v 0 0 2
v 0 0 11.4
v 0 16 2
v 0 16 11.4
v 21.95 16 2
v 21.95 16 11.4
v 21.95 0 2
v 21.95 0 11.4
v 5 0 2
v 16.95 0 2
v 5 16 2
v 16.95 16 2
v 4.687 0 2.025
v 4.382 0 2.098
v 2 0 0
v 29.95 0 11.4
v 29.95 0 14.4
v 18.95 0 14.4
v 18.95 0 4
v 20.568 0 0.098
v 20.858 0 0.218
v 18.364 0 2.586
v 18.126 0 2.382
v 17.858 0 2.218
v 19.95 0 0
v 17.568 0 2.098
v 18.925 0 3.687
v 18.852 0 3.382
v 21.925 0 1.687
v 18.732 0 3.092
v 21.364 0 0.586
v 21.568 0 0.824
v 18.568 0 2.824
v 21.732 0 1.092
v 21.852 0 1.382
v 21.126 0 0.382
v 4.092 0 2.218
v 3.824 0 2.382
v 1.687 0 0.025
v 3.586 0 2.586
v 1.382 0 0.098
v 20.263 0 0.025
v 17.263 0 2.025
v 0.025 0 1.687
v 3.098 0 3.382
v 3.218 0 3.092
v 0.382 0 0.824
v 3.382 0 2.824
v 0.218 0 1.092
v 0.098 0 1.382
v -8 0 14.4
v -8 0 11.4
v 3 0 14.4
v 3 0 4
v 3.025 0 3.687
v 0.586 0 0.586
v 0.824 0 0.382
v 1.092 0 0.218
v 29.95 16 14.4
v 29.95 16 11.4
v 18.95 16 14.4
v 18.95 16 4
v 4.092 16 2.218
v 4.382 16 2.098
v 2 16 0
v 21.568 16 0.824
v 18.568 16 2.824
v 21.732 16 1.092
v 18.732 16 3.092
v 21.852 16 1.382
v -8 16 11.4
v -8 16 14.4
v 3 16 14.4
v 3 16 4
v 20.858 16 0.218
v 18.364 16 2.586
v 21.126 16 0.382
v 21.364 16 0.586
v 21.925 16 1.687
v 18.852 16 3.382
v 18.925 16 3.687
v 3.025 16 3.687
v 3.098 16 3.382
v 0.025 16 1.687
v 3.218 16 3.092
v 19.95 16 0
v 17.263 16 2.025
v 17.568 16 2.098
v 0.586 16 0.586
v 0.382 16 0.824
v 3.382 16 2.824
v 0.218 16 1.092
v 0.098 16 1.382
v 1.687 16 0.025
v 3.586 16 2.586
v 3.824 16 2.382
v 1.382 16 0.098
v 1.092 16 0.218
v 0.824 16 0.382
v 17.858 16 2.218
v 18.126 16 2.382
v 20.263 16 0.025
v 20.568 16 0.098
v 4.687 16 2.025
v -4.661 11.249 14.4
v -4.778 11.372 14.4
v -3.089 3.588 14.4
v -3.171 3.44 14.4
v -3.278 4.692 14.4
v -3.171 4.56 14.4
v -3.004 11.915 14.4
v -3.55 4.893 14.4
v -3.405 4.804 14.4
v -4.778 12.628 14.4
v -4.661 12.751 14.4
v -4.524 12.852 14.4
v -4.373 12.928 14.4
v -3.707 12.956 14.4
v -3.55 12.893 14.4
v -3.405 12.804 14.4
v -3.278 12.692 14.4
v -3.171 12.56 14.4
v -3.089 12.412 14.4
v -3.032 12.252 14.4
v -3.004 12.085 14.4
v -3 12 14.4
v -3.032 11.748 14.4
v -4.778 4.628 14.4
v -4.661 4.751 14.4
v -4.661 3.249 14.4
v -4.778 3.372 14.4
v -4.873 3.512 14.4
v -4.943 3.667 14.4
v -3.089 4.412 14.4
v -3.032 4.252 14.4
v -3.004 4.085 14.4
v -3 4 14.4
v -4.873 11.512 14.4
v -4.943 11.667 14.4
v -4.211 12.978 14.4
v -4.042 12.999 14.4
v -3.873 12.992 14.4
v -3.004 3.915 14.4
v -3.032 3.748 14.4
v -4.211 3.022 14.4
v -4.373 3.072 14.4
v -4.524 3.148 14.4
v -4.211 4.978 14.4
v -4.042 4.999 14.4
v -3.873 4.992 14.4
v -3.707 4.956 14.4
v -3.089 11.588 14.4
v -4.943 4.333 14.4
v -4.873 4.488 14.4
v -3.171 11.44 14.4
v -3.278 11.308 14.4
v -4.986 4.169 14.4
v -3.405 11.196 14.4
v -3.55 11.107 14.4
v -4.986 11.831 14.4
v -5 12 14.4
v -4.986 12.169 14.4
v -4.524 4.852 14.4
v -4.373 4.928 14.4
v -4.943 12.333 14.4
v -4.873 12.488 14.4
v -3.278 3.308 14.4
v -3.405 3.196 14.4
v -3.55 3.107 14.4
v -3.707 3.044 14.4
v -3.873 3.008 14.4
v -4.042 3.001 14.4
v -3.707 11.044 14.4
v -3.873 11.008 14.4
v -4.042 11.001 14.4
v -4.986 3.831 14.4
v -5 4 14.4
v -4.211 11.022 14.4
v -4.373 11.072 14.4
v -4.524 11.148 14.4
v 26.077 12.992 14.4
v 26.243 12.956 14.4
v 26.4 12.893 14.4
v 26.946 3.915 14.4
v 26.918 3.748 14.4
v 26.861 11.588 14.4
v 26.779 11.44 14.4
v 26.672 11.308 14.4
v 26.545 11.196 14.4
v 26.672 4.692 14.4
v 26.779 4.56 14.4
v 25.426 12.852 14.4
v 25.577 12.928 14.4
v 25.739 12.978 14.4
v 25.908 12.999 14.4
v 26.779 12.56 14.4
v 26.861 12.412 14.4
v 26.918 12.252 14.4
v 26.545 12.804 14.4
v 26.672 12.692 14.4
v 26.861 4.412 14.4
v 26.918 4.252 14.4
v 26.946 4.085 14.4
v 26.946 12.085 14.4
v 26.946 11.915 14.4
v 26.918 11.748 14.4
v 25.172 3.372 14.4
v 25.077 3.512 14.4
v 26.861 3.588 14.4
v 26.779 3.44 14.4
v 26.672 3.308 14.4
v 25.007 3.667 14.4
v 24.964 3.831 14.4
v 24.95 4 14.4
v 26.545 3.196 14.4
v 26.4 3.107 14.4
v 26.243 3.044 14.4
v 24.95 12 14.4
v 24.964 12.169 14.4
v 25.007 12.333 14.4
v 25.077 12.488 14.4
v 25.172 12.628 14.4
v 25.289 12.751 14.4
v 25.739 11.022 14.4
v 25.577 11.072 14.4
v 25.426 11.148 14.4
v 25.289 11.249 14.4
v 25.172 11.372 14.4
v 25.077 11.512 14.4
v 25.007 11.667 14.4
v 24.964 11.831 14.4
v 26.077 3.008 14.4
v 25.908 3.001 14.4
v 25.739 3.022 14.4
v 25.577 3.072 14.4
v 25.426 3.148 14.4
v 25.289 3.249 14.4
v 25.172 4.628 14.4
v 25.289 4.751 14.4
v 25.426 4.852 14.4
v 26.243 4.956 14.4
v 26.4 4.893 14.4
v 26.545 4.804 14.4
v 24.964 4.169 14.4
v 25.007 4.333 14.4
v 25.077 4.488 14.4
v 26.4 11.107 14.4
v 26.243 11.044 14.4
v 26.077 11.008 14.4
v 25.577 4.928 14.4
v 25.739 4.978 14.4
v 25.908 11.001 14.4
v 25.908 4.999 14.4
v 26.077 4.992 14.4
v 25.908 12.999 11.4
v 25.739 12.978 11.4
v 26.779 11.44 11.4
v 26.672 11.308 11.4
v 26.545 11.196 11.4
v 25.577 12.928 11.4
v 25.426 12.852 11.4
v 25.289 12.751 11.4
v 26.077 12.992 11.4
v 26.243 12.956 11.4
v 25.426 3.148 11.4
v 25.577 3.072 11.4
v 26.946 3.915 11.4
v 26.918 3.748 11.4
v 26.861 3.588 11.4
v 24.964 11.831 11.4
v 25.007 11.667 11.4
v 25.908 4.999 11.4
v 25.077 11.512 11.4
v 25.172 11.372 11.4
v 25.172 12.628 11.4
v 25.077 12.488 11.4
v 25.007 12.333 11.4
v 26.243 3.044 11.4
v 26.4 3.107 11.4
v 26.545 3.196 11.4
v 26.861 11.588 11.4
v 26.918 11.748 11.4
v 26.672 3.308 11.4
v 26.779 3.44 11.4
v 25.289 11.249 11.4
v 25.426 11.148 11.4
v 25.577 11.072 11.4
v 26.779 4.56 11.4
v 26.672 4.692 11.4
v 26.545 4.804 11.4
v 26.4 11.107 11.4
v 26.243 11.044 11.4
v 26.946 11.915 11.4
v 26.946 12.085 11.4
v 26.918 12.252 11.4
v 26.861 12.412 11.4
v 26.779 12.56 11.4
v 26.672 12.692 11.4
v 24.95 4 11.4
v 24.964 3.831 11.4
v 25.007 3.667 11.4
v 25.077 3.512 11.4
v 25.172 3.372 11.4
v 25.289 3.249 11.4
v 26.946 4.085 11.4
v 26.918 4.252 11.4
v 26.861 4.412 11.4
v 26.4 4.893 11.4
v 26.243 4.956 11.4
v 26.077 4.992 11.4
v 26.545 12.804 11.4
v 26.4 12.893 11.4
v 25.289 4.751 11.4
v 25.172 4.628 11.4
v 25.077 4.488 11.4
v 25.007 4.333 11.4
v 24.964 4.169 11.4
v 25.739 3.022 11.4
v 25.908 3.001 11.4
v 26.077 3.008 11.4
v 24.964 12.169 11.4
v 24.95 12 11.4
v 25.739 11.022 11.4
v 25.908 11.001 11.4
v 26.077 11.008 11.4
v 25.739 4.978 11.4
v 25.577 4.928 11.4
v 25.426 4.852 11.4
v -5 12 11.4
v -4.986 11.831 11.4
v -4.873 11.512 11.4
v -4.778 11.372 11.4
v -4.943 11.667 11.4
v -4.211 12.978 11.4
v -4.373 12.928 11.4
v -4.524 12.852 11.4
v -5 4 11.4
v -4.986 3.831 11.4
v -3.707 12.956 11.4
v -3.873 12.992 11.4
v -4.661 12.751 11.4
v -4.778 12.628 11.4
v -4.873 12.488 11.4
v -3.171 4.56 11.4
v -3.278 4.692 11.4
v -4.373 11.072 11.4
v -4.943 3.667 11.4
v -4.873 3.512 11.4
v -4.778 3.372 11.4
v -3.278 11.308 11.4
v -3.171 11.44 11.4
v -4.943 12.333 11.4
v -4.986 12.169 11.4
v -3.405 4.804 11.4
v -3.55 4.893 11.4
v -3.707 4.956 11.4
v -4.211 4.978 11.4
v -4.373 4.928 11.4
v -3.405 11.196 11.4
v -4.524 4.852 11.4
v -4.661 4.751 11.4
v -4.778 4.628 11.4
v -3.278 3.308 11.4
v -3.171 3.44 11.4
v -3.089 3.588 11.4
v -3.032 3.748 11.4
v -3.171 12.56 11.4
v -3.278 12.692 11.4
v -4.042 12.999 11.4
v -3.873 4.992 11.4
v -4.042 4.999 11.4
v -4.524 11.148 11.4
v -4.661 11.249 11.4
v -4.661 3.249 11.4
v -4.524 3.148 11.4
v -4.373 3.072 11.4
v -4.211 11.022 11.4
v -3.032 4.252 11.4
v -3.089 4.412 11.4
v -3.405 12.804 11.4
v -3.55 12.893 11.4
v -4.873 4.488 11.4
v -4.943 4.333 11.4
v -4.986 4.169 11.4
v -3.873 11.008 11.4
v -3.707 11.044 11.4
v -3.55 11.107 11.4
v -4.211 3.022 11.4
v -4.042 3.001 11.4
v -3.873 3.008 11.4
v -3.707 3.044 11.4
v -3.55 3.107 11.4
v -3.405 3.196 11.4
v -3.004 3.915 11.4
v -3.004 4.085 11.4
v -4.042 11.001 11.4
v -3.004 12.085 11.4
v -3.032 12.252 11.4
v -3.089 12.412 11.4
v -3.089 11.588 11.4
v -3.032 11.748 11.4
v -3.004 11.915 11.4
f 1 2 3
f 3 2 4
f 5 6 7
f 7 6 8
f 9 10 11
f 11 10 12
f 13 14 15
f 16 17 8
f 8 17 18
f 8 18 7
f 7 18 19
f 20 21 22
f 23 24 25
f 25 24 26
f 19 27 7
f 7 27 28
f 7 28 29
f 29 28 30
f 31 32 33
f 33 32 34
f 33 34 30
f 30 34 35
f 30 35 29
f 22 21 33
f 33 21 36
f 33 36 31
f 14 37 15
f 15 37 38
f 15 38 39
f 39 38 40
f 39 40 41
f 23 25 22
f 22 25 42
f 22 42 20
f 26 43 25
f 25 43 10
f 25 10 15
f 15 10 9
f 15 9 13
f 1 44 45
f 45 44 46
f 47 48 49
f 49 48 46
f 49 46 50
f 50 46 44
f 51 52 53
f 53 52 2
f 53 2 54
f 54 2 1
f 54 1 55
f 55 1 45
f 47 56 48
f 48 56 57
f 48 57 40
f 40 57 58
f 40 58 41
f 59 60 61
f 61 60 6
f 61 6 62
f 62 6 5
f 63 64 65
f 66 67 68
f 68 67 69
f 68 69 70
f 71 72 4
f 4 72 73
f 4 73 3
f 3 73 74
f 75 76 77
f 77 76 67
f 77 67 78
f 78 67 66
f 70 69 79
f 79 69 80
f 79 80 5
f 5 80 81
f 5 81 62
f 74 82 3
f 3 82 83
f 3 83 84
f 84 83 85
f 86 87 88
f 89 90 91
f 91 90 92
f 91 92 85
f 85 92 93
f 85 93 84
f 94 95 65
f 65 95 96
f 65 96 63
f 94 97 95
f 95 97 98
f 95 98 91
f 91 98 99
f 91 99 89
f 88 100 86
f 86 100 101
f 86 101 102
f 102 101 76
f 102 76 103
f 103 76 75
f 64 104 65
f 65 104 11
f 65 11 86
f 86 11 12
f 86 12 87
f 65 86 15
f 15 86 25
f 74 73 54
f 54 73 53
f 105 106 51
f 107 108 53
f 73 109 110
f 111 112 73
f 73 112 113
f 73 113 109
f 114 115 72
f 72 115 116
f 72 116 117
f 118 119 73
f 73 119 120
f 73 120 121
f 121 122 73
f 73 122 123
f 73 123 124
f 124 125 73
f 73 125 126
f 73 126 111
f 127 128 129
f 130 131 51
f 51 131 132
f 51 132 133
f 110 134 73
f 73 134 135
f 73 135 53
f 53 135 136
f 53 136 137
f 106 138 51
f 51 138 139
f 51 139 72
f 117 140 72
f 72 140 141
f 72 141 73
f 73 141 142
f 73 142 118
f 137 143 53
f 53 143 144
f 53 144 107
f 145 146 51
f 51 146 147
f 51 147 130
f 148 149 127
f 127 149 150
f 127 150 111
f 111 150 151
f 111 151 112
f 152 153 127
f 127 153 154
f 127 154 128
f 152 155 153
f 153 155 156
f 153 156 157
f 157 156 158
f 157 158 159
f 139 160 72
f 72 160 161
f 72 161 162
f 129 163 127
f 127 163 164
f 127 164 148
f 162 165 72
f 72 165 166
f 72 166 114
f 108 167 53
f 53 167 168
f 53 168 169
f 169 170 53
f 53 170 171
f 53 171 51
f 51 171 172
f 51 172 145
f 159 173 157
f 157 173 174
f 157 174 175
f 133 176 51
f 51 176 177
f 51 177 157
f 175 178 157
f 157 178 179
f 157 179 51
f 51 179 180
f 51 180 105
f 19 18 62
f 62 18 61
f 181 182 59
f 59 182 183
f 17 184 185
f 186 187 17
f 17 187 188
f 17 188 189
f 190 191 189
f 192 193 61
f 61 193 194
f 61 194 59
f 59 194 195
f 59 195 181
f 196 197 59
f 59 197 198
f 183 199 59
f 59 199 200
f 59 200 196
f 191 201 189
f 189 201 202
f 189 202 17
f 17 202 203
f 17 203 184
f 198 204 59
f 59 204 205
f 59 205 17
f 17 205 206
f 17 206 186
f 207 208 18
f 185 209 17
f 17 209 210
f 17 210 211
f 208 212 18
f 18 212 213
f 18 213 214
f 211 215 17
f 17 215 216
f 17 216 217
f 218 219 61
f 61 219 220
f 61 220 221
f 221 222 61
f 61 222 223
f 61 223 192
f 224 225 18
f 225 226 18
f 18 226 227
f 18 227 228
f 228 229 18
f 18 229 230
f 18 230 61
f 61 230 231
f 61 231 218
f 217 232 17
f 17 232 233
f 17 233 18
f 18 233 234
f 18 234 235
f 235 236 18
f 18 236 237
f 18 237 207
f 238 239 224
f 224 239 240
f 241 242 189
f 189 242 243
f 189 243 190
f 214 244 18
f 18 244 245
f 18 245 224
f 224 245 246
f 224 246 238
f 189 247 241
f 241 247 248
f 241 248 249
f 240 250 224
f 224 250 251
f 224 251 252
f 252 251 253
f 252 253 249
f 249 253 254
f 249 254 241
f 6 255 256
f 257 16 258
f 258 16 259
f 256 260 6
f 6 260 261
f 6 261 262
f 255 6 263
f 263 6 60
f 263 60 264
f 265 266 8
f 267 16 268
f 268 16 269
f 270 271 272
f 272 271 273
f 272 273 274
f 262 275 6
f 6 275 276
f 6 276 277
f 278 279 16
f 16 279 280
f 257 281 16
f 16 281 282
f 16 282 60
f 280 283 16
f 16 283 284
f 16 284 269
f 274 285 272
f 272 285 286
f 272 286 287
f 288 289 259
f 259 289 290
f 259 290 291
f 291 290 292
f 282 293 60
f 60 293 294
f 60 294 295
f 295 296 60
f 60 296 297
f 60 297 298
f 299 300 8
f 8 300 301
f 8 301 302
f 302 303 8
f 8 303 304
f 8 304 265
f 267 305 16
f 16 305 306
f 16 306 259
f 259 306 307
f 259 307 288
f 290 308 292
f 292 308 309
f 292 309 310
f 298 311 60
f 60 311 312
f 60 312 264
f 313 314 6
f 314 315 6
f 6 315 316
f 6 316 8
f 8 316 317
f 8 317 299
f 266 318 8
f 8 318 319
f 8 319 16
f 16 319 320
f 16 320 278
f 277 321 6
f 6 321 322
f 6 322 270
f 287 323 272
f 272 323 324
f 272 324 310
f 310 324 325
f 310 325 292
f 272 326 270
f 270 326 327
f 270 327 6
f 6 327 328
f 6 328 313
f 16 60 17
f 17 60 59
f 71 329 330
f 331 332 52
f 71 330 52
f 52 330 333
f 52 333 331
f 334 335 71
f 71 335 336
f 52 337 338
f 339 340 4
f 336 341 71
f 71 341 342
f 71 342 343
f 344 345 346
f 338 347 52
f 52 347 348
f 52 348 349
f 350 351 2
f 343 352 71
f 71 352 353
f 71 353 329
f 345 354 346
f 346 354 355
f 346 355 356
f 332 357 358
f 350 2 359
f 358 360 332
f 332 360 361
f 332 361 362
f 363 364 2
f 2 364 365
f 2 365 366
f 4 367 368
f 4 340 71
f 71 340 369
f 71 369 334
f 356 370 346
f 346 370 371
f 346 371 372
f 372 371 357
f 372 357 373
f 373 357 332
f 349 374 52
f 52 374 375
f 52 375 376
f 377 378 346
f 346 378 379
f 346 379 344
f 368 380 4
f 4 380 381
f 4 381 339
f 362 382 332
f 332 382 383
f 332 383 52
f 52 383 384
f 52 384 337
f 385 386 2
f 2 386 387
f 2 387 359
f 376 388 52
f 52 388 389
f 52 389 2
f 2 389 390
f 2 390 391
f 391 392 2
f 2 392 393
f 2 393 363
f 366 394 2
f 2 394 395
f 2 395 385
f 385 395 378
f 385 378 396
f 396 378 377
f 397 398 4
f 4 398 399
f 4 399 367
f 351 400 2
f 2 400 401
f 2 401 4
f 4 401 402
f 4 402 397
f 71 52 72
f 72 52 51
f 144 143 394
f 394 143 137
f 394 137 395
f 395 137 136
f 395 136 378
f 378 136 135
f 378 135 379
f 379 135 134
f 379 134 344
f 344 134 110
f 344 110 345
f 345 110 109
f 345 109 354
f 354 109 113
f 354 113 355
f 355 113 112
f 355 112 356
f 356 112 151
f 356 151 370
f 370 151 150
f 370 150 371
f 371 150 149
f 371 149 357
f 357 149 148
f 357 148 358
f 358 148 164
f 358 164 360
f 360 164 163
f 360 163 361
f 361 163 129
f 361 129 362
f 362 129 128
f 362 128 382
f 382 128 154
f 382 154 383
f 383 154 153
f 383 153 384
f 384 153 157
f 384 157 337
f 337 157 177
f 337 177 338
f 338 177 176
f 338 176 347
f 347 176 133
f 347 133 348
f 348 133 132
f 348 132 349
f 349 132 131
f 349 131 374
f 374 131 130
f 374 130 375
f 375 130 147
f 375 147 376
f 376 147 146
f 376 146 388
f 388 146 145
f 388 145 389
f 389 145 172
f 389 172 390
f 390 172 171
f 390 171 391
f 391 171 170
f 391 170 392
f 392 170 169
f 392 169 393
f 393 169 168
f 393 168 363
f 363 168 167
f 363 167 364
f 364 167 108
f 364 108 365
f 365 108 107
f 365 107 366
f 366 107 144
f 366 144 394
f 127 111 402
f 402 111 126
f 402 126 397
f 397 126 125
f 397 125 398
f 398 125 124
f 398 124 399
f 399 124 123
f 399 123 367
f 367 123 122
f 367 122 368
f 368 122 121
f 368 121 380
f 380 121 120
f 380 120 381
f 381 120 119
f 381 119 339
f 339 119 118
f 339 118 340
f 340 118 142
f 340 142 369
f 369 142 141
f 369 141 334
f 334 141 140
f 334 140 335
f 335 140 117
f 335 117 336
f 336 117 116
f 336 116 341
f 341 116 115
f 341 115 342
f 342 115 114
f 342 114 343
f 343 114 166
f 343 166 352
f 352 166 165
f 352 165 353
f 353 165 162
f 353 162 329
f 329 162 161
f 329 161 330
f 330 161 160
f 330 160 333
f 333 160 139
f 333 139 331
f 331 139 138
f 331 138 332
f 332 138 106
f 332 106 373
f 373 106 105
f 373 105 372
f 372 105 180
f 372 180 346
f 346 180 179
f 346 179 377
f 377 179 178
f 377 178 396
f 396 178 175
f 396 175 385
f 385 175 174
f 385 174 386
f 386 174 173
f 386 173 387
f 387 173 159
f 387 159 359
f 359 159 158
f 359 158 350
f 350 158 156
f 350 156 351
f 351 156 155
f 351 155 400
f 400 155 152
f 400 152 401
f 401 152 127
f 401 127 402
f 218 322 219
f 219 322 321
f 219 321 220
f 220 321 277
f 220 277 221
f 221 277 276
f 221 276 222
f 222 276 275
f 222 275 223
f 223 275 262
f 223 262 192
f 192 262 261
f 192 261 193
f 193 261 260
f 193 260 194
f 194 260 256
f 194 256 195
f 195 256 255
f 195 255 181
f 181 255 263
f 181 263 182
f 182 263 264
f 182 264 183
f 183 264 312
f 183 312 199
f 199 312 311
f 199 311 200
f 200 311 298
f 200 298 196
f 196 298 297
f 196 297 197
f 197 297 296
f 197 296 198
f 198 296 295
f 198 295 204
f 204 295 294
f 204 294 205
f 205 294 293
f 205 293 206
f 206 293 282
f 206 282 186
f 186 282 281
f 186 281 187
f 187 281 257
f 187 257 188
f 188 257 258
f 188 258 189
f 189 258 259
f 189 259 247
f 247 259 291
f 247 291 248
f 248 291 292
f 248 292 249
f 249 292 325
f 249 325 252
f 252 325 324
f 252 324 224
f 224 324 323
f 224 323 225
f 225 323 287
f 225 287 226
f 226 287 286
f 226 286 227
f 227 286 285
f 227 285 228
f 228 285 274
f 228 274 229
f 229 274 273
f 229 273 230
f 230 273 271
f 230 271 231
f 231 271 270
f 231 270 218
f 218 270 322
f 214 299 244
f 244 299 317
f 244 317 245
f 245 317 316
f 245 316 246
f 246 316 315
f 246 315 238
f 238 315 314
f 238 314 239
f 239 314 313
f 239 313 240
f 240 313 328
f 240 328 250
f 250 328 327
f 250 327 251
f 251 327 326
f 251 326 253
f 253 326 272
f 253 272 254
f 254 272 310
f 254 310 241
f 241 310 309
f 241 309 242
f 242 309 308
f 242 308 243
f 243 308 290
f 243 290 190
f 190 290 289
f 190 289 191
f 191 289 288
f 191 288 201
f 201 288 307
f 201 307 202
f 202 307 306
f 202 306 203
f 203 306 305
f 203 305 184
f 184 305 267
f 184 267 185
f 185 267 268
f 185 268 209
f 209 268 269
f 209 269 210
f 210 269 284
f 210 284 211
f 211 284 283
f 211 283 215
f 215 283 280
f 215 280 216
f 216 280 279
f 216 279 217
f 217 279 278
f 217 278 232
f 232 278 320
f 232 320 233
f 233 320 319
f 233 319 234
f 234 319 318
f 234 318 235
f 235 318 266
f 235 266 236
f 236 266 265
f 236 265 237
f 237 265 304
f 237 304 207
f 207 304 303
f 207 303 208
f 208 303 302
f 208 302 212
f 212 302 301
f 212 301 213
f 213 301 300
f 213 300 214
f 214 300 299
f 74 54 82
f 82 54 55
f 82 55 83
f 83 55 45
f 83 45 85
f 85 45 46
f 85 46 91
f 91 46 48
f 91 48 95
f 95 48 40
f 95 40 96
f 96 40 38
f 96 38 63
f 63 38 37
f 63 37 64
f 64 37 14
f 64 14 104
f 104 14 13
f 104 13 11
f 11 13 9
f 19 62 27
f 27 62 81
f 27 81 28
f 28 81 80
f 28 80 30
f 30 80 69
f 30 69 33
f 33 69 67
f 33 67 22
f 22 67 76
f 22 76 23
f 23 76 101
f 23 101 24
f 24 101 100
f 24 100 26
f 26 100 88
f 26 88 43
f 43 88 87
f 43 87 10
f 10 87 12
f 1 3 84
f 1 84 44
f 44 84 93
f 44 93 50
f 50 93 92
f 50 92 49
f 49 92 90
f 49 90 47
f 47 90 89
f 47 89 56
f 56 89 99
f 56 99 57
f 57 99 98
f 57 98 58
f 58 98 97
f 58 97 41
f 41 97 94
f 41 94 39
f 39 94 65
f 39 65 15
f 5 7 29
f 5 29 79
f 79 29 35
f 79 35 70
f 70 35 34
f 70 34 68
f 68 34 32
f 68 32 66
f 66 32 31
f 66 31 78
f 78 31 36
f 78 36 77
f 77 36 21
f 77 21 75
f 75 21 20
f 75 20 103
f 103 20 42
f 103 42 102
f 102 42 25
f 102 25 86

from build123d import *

# Parameters (mm, degrees)
SKETCH1_W           = 21.95
SKETCH1_H           = 16
BOSS_EXTRUDE1_DEPTH = 2
SKETCH2_W           = 3
SKETCH2_H           = 16
BOSS_EXTRUDE2_DEPTH = 12.4
SKETCH3_W           = 3
SKETCH3_H           = 16
BOSS_EXTRUDE3_DEPTH = 8
SKETCH4_W           = 3
SKETCH4_H           = 16
BOSS_EXTRUDE4_DEPTH = 8
SKETCH5_R           = 1
CUT_EXTRUDE1_DEPTH  = 8
FILLET1_R           = 2
FILLET2_R           = 2


with BuildPart() as part:
    # Sketch1 → Boss-Extrude1 (new body)
    with BuildSketch(Plane.XY):
        with Locations((10.975, 8)):
            Rectangle(SKETCH1_W, SKETCH1_H)
    extrude(amount=BOSS_EXTRUDE1_DEPTH)

    # Sketch2 → Boss-Extrude2 (add)
    with BuildSketch(Plane.XY.offset(2)):
        with Locations((1.5, 8)):
            Rectangle(SKETCH2_W, SKETCH2_H)
        with Locations((20.45, 8)):
            Rectangle(SKETCH2_W, SKETCH2_H)
    extrude(amount=BOSS_EXTRUDE2_DEPTH)

    # Sketch3 → Boss-Extrude3 (add)
    with BuildSketch(Plane(origin=(21.95, 0, 0), x_dir=(0, 0, -1), z_dir=(1, 0, 0))):
        with Locations((-12.9, 8)):
            Rectangle(SKETCH3_W, SKETCH3_H)
    extrude(amount=BOSS_EXTRUDE3_DEPTH)

    # Sketch4 → Boss-Extrude4 (add)
    with BuildSketch(Plane.ZY):
        with Locations((12.9, 8)):
            Rectangle(SKETCH4_W, SKETCH4_H)
    extrude(amount=BOSS_EXTRUDE4_DEPTH)

    # Sketch5 → Cut-Extrude1 (cut)
    with BuildSketch(Plane(origin=(0, 0, 11.4), x_dir=(-1, 0, 0), z_dir=(0, 0, -1))):
        with Locations((4, 4)):
            Circle(SKETCH5_R)
        with Locations((-25.95, 4)):
            Circle(SKETCH5_R)
        with Locations((4, 12)):
            Circle(SKETCH5_R)
        with Locations((-25.95, 12)):
            Circle(SKETCH5_R)
    extrude(amount=-CUT_EXTRUDE1_DEPTH, mode=Mode.SUBTRACT)

    # Fillet1
    fillet1_edges = [part.edges().sort_by_distance(p)[0] for p in [
        (3, 8, 2),
        (18.95, 8, 2),
    ]]
    fillet(fillet1_edges, radius=FILLET1_R)

    # Fillet2
    fillet2_edges = [part.edges().sort_by_distance(p)[0] for p in [
        (21.95, 8, 0),
        (0, 8, 0),
    ]]
    fillet(fillet2_edges, radius=FILLET2_R)


solid = part.part
